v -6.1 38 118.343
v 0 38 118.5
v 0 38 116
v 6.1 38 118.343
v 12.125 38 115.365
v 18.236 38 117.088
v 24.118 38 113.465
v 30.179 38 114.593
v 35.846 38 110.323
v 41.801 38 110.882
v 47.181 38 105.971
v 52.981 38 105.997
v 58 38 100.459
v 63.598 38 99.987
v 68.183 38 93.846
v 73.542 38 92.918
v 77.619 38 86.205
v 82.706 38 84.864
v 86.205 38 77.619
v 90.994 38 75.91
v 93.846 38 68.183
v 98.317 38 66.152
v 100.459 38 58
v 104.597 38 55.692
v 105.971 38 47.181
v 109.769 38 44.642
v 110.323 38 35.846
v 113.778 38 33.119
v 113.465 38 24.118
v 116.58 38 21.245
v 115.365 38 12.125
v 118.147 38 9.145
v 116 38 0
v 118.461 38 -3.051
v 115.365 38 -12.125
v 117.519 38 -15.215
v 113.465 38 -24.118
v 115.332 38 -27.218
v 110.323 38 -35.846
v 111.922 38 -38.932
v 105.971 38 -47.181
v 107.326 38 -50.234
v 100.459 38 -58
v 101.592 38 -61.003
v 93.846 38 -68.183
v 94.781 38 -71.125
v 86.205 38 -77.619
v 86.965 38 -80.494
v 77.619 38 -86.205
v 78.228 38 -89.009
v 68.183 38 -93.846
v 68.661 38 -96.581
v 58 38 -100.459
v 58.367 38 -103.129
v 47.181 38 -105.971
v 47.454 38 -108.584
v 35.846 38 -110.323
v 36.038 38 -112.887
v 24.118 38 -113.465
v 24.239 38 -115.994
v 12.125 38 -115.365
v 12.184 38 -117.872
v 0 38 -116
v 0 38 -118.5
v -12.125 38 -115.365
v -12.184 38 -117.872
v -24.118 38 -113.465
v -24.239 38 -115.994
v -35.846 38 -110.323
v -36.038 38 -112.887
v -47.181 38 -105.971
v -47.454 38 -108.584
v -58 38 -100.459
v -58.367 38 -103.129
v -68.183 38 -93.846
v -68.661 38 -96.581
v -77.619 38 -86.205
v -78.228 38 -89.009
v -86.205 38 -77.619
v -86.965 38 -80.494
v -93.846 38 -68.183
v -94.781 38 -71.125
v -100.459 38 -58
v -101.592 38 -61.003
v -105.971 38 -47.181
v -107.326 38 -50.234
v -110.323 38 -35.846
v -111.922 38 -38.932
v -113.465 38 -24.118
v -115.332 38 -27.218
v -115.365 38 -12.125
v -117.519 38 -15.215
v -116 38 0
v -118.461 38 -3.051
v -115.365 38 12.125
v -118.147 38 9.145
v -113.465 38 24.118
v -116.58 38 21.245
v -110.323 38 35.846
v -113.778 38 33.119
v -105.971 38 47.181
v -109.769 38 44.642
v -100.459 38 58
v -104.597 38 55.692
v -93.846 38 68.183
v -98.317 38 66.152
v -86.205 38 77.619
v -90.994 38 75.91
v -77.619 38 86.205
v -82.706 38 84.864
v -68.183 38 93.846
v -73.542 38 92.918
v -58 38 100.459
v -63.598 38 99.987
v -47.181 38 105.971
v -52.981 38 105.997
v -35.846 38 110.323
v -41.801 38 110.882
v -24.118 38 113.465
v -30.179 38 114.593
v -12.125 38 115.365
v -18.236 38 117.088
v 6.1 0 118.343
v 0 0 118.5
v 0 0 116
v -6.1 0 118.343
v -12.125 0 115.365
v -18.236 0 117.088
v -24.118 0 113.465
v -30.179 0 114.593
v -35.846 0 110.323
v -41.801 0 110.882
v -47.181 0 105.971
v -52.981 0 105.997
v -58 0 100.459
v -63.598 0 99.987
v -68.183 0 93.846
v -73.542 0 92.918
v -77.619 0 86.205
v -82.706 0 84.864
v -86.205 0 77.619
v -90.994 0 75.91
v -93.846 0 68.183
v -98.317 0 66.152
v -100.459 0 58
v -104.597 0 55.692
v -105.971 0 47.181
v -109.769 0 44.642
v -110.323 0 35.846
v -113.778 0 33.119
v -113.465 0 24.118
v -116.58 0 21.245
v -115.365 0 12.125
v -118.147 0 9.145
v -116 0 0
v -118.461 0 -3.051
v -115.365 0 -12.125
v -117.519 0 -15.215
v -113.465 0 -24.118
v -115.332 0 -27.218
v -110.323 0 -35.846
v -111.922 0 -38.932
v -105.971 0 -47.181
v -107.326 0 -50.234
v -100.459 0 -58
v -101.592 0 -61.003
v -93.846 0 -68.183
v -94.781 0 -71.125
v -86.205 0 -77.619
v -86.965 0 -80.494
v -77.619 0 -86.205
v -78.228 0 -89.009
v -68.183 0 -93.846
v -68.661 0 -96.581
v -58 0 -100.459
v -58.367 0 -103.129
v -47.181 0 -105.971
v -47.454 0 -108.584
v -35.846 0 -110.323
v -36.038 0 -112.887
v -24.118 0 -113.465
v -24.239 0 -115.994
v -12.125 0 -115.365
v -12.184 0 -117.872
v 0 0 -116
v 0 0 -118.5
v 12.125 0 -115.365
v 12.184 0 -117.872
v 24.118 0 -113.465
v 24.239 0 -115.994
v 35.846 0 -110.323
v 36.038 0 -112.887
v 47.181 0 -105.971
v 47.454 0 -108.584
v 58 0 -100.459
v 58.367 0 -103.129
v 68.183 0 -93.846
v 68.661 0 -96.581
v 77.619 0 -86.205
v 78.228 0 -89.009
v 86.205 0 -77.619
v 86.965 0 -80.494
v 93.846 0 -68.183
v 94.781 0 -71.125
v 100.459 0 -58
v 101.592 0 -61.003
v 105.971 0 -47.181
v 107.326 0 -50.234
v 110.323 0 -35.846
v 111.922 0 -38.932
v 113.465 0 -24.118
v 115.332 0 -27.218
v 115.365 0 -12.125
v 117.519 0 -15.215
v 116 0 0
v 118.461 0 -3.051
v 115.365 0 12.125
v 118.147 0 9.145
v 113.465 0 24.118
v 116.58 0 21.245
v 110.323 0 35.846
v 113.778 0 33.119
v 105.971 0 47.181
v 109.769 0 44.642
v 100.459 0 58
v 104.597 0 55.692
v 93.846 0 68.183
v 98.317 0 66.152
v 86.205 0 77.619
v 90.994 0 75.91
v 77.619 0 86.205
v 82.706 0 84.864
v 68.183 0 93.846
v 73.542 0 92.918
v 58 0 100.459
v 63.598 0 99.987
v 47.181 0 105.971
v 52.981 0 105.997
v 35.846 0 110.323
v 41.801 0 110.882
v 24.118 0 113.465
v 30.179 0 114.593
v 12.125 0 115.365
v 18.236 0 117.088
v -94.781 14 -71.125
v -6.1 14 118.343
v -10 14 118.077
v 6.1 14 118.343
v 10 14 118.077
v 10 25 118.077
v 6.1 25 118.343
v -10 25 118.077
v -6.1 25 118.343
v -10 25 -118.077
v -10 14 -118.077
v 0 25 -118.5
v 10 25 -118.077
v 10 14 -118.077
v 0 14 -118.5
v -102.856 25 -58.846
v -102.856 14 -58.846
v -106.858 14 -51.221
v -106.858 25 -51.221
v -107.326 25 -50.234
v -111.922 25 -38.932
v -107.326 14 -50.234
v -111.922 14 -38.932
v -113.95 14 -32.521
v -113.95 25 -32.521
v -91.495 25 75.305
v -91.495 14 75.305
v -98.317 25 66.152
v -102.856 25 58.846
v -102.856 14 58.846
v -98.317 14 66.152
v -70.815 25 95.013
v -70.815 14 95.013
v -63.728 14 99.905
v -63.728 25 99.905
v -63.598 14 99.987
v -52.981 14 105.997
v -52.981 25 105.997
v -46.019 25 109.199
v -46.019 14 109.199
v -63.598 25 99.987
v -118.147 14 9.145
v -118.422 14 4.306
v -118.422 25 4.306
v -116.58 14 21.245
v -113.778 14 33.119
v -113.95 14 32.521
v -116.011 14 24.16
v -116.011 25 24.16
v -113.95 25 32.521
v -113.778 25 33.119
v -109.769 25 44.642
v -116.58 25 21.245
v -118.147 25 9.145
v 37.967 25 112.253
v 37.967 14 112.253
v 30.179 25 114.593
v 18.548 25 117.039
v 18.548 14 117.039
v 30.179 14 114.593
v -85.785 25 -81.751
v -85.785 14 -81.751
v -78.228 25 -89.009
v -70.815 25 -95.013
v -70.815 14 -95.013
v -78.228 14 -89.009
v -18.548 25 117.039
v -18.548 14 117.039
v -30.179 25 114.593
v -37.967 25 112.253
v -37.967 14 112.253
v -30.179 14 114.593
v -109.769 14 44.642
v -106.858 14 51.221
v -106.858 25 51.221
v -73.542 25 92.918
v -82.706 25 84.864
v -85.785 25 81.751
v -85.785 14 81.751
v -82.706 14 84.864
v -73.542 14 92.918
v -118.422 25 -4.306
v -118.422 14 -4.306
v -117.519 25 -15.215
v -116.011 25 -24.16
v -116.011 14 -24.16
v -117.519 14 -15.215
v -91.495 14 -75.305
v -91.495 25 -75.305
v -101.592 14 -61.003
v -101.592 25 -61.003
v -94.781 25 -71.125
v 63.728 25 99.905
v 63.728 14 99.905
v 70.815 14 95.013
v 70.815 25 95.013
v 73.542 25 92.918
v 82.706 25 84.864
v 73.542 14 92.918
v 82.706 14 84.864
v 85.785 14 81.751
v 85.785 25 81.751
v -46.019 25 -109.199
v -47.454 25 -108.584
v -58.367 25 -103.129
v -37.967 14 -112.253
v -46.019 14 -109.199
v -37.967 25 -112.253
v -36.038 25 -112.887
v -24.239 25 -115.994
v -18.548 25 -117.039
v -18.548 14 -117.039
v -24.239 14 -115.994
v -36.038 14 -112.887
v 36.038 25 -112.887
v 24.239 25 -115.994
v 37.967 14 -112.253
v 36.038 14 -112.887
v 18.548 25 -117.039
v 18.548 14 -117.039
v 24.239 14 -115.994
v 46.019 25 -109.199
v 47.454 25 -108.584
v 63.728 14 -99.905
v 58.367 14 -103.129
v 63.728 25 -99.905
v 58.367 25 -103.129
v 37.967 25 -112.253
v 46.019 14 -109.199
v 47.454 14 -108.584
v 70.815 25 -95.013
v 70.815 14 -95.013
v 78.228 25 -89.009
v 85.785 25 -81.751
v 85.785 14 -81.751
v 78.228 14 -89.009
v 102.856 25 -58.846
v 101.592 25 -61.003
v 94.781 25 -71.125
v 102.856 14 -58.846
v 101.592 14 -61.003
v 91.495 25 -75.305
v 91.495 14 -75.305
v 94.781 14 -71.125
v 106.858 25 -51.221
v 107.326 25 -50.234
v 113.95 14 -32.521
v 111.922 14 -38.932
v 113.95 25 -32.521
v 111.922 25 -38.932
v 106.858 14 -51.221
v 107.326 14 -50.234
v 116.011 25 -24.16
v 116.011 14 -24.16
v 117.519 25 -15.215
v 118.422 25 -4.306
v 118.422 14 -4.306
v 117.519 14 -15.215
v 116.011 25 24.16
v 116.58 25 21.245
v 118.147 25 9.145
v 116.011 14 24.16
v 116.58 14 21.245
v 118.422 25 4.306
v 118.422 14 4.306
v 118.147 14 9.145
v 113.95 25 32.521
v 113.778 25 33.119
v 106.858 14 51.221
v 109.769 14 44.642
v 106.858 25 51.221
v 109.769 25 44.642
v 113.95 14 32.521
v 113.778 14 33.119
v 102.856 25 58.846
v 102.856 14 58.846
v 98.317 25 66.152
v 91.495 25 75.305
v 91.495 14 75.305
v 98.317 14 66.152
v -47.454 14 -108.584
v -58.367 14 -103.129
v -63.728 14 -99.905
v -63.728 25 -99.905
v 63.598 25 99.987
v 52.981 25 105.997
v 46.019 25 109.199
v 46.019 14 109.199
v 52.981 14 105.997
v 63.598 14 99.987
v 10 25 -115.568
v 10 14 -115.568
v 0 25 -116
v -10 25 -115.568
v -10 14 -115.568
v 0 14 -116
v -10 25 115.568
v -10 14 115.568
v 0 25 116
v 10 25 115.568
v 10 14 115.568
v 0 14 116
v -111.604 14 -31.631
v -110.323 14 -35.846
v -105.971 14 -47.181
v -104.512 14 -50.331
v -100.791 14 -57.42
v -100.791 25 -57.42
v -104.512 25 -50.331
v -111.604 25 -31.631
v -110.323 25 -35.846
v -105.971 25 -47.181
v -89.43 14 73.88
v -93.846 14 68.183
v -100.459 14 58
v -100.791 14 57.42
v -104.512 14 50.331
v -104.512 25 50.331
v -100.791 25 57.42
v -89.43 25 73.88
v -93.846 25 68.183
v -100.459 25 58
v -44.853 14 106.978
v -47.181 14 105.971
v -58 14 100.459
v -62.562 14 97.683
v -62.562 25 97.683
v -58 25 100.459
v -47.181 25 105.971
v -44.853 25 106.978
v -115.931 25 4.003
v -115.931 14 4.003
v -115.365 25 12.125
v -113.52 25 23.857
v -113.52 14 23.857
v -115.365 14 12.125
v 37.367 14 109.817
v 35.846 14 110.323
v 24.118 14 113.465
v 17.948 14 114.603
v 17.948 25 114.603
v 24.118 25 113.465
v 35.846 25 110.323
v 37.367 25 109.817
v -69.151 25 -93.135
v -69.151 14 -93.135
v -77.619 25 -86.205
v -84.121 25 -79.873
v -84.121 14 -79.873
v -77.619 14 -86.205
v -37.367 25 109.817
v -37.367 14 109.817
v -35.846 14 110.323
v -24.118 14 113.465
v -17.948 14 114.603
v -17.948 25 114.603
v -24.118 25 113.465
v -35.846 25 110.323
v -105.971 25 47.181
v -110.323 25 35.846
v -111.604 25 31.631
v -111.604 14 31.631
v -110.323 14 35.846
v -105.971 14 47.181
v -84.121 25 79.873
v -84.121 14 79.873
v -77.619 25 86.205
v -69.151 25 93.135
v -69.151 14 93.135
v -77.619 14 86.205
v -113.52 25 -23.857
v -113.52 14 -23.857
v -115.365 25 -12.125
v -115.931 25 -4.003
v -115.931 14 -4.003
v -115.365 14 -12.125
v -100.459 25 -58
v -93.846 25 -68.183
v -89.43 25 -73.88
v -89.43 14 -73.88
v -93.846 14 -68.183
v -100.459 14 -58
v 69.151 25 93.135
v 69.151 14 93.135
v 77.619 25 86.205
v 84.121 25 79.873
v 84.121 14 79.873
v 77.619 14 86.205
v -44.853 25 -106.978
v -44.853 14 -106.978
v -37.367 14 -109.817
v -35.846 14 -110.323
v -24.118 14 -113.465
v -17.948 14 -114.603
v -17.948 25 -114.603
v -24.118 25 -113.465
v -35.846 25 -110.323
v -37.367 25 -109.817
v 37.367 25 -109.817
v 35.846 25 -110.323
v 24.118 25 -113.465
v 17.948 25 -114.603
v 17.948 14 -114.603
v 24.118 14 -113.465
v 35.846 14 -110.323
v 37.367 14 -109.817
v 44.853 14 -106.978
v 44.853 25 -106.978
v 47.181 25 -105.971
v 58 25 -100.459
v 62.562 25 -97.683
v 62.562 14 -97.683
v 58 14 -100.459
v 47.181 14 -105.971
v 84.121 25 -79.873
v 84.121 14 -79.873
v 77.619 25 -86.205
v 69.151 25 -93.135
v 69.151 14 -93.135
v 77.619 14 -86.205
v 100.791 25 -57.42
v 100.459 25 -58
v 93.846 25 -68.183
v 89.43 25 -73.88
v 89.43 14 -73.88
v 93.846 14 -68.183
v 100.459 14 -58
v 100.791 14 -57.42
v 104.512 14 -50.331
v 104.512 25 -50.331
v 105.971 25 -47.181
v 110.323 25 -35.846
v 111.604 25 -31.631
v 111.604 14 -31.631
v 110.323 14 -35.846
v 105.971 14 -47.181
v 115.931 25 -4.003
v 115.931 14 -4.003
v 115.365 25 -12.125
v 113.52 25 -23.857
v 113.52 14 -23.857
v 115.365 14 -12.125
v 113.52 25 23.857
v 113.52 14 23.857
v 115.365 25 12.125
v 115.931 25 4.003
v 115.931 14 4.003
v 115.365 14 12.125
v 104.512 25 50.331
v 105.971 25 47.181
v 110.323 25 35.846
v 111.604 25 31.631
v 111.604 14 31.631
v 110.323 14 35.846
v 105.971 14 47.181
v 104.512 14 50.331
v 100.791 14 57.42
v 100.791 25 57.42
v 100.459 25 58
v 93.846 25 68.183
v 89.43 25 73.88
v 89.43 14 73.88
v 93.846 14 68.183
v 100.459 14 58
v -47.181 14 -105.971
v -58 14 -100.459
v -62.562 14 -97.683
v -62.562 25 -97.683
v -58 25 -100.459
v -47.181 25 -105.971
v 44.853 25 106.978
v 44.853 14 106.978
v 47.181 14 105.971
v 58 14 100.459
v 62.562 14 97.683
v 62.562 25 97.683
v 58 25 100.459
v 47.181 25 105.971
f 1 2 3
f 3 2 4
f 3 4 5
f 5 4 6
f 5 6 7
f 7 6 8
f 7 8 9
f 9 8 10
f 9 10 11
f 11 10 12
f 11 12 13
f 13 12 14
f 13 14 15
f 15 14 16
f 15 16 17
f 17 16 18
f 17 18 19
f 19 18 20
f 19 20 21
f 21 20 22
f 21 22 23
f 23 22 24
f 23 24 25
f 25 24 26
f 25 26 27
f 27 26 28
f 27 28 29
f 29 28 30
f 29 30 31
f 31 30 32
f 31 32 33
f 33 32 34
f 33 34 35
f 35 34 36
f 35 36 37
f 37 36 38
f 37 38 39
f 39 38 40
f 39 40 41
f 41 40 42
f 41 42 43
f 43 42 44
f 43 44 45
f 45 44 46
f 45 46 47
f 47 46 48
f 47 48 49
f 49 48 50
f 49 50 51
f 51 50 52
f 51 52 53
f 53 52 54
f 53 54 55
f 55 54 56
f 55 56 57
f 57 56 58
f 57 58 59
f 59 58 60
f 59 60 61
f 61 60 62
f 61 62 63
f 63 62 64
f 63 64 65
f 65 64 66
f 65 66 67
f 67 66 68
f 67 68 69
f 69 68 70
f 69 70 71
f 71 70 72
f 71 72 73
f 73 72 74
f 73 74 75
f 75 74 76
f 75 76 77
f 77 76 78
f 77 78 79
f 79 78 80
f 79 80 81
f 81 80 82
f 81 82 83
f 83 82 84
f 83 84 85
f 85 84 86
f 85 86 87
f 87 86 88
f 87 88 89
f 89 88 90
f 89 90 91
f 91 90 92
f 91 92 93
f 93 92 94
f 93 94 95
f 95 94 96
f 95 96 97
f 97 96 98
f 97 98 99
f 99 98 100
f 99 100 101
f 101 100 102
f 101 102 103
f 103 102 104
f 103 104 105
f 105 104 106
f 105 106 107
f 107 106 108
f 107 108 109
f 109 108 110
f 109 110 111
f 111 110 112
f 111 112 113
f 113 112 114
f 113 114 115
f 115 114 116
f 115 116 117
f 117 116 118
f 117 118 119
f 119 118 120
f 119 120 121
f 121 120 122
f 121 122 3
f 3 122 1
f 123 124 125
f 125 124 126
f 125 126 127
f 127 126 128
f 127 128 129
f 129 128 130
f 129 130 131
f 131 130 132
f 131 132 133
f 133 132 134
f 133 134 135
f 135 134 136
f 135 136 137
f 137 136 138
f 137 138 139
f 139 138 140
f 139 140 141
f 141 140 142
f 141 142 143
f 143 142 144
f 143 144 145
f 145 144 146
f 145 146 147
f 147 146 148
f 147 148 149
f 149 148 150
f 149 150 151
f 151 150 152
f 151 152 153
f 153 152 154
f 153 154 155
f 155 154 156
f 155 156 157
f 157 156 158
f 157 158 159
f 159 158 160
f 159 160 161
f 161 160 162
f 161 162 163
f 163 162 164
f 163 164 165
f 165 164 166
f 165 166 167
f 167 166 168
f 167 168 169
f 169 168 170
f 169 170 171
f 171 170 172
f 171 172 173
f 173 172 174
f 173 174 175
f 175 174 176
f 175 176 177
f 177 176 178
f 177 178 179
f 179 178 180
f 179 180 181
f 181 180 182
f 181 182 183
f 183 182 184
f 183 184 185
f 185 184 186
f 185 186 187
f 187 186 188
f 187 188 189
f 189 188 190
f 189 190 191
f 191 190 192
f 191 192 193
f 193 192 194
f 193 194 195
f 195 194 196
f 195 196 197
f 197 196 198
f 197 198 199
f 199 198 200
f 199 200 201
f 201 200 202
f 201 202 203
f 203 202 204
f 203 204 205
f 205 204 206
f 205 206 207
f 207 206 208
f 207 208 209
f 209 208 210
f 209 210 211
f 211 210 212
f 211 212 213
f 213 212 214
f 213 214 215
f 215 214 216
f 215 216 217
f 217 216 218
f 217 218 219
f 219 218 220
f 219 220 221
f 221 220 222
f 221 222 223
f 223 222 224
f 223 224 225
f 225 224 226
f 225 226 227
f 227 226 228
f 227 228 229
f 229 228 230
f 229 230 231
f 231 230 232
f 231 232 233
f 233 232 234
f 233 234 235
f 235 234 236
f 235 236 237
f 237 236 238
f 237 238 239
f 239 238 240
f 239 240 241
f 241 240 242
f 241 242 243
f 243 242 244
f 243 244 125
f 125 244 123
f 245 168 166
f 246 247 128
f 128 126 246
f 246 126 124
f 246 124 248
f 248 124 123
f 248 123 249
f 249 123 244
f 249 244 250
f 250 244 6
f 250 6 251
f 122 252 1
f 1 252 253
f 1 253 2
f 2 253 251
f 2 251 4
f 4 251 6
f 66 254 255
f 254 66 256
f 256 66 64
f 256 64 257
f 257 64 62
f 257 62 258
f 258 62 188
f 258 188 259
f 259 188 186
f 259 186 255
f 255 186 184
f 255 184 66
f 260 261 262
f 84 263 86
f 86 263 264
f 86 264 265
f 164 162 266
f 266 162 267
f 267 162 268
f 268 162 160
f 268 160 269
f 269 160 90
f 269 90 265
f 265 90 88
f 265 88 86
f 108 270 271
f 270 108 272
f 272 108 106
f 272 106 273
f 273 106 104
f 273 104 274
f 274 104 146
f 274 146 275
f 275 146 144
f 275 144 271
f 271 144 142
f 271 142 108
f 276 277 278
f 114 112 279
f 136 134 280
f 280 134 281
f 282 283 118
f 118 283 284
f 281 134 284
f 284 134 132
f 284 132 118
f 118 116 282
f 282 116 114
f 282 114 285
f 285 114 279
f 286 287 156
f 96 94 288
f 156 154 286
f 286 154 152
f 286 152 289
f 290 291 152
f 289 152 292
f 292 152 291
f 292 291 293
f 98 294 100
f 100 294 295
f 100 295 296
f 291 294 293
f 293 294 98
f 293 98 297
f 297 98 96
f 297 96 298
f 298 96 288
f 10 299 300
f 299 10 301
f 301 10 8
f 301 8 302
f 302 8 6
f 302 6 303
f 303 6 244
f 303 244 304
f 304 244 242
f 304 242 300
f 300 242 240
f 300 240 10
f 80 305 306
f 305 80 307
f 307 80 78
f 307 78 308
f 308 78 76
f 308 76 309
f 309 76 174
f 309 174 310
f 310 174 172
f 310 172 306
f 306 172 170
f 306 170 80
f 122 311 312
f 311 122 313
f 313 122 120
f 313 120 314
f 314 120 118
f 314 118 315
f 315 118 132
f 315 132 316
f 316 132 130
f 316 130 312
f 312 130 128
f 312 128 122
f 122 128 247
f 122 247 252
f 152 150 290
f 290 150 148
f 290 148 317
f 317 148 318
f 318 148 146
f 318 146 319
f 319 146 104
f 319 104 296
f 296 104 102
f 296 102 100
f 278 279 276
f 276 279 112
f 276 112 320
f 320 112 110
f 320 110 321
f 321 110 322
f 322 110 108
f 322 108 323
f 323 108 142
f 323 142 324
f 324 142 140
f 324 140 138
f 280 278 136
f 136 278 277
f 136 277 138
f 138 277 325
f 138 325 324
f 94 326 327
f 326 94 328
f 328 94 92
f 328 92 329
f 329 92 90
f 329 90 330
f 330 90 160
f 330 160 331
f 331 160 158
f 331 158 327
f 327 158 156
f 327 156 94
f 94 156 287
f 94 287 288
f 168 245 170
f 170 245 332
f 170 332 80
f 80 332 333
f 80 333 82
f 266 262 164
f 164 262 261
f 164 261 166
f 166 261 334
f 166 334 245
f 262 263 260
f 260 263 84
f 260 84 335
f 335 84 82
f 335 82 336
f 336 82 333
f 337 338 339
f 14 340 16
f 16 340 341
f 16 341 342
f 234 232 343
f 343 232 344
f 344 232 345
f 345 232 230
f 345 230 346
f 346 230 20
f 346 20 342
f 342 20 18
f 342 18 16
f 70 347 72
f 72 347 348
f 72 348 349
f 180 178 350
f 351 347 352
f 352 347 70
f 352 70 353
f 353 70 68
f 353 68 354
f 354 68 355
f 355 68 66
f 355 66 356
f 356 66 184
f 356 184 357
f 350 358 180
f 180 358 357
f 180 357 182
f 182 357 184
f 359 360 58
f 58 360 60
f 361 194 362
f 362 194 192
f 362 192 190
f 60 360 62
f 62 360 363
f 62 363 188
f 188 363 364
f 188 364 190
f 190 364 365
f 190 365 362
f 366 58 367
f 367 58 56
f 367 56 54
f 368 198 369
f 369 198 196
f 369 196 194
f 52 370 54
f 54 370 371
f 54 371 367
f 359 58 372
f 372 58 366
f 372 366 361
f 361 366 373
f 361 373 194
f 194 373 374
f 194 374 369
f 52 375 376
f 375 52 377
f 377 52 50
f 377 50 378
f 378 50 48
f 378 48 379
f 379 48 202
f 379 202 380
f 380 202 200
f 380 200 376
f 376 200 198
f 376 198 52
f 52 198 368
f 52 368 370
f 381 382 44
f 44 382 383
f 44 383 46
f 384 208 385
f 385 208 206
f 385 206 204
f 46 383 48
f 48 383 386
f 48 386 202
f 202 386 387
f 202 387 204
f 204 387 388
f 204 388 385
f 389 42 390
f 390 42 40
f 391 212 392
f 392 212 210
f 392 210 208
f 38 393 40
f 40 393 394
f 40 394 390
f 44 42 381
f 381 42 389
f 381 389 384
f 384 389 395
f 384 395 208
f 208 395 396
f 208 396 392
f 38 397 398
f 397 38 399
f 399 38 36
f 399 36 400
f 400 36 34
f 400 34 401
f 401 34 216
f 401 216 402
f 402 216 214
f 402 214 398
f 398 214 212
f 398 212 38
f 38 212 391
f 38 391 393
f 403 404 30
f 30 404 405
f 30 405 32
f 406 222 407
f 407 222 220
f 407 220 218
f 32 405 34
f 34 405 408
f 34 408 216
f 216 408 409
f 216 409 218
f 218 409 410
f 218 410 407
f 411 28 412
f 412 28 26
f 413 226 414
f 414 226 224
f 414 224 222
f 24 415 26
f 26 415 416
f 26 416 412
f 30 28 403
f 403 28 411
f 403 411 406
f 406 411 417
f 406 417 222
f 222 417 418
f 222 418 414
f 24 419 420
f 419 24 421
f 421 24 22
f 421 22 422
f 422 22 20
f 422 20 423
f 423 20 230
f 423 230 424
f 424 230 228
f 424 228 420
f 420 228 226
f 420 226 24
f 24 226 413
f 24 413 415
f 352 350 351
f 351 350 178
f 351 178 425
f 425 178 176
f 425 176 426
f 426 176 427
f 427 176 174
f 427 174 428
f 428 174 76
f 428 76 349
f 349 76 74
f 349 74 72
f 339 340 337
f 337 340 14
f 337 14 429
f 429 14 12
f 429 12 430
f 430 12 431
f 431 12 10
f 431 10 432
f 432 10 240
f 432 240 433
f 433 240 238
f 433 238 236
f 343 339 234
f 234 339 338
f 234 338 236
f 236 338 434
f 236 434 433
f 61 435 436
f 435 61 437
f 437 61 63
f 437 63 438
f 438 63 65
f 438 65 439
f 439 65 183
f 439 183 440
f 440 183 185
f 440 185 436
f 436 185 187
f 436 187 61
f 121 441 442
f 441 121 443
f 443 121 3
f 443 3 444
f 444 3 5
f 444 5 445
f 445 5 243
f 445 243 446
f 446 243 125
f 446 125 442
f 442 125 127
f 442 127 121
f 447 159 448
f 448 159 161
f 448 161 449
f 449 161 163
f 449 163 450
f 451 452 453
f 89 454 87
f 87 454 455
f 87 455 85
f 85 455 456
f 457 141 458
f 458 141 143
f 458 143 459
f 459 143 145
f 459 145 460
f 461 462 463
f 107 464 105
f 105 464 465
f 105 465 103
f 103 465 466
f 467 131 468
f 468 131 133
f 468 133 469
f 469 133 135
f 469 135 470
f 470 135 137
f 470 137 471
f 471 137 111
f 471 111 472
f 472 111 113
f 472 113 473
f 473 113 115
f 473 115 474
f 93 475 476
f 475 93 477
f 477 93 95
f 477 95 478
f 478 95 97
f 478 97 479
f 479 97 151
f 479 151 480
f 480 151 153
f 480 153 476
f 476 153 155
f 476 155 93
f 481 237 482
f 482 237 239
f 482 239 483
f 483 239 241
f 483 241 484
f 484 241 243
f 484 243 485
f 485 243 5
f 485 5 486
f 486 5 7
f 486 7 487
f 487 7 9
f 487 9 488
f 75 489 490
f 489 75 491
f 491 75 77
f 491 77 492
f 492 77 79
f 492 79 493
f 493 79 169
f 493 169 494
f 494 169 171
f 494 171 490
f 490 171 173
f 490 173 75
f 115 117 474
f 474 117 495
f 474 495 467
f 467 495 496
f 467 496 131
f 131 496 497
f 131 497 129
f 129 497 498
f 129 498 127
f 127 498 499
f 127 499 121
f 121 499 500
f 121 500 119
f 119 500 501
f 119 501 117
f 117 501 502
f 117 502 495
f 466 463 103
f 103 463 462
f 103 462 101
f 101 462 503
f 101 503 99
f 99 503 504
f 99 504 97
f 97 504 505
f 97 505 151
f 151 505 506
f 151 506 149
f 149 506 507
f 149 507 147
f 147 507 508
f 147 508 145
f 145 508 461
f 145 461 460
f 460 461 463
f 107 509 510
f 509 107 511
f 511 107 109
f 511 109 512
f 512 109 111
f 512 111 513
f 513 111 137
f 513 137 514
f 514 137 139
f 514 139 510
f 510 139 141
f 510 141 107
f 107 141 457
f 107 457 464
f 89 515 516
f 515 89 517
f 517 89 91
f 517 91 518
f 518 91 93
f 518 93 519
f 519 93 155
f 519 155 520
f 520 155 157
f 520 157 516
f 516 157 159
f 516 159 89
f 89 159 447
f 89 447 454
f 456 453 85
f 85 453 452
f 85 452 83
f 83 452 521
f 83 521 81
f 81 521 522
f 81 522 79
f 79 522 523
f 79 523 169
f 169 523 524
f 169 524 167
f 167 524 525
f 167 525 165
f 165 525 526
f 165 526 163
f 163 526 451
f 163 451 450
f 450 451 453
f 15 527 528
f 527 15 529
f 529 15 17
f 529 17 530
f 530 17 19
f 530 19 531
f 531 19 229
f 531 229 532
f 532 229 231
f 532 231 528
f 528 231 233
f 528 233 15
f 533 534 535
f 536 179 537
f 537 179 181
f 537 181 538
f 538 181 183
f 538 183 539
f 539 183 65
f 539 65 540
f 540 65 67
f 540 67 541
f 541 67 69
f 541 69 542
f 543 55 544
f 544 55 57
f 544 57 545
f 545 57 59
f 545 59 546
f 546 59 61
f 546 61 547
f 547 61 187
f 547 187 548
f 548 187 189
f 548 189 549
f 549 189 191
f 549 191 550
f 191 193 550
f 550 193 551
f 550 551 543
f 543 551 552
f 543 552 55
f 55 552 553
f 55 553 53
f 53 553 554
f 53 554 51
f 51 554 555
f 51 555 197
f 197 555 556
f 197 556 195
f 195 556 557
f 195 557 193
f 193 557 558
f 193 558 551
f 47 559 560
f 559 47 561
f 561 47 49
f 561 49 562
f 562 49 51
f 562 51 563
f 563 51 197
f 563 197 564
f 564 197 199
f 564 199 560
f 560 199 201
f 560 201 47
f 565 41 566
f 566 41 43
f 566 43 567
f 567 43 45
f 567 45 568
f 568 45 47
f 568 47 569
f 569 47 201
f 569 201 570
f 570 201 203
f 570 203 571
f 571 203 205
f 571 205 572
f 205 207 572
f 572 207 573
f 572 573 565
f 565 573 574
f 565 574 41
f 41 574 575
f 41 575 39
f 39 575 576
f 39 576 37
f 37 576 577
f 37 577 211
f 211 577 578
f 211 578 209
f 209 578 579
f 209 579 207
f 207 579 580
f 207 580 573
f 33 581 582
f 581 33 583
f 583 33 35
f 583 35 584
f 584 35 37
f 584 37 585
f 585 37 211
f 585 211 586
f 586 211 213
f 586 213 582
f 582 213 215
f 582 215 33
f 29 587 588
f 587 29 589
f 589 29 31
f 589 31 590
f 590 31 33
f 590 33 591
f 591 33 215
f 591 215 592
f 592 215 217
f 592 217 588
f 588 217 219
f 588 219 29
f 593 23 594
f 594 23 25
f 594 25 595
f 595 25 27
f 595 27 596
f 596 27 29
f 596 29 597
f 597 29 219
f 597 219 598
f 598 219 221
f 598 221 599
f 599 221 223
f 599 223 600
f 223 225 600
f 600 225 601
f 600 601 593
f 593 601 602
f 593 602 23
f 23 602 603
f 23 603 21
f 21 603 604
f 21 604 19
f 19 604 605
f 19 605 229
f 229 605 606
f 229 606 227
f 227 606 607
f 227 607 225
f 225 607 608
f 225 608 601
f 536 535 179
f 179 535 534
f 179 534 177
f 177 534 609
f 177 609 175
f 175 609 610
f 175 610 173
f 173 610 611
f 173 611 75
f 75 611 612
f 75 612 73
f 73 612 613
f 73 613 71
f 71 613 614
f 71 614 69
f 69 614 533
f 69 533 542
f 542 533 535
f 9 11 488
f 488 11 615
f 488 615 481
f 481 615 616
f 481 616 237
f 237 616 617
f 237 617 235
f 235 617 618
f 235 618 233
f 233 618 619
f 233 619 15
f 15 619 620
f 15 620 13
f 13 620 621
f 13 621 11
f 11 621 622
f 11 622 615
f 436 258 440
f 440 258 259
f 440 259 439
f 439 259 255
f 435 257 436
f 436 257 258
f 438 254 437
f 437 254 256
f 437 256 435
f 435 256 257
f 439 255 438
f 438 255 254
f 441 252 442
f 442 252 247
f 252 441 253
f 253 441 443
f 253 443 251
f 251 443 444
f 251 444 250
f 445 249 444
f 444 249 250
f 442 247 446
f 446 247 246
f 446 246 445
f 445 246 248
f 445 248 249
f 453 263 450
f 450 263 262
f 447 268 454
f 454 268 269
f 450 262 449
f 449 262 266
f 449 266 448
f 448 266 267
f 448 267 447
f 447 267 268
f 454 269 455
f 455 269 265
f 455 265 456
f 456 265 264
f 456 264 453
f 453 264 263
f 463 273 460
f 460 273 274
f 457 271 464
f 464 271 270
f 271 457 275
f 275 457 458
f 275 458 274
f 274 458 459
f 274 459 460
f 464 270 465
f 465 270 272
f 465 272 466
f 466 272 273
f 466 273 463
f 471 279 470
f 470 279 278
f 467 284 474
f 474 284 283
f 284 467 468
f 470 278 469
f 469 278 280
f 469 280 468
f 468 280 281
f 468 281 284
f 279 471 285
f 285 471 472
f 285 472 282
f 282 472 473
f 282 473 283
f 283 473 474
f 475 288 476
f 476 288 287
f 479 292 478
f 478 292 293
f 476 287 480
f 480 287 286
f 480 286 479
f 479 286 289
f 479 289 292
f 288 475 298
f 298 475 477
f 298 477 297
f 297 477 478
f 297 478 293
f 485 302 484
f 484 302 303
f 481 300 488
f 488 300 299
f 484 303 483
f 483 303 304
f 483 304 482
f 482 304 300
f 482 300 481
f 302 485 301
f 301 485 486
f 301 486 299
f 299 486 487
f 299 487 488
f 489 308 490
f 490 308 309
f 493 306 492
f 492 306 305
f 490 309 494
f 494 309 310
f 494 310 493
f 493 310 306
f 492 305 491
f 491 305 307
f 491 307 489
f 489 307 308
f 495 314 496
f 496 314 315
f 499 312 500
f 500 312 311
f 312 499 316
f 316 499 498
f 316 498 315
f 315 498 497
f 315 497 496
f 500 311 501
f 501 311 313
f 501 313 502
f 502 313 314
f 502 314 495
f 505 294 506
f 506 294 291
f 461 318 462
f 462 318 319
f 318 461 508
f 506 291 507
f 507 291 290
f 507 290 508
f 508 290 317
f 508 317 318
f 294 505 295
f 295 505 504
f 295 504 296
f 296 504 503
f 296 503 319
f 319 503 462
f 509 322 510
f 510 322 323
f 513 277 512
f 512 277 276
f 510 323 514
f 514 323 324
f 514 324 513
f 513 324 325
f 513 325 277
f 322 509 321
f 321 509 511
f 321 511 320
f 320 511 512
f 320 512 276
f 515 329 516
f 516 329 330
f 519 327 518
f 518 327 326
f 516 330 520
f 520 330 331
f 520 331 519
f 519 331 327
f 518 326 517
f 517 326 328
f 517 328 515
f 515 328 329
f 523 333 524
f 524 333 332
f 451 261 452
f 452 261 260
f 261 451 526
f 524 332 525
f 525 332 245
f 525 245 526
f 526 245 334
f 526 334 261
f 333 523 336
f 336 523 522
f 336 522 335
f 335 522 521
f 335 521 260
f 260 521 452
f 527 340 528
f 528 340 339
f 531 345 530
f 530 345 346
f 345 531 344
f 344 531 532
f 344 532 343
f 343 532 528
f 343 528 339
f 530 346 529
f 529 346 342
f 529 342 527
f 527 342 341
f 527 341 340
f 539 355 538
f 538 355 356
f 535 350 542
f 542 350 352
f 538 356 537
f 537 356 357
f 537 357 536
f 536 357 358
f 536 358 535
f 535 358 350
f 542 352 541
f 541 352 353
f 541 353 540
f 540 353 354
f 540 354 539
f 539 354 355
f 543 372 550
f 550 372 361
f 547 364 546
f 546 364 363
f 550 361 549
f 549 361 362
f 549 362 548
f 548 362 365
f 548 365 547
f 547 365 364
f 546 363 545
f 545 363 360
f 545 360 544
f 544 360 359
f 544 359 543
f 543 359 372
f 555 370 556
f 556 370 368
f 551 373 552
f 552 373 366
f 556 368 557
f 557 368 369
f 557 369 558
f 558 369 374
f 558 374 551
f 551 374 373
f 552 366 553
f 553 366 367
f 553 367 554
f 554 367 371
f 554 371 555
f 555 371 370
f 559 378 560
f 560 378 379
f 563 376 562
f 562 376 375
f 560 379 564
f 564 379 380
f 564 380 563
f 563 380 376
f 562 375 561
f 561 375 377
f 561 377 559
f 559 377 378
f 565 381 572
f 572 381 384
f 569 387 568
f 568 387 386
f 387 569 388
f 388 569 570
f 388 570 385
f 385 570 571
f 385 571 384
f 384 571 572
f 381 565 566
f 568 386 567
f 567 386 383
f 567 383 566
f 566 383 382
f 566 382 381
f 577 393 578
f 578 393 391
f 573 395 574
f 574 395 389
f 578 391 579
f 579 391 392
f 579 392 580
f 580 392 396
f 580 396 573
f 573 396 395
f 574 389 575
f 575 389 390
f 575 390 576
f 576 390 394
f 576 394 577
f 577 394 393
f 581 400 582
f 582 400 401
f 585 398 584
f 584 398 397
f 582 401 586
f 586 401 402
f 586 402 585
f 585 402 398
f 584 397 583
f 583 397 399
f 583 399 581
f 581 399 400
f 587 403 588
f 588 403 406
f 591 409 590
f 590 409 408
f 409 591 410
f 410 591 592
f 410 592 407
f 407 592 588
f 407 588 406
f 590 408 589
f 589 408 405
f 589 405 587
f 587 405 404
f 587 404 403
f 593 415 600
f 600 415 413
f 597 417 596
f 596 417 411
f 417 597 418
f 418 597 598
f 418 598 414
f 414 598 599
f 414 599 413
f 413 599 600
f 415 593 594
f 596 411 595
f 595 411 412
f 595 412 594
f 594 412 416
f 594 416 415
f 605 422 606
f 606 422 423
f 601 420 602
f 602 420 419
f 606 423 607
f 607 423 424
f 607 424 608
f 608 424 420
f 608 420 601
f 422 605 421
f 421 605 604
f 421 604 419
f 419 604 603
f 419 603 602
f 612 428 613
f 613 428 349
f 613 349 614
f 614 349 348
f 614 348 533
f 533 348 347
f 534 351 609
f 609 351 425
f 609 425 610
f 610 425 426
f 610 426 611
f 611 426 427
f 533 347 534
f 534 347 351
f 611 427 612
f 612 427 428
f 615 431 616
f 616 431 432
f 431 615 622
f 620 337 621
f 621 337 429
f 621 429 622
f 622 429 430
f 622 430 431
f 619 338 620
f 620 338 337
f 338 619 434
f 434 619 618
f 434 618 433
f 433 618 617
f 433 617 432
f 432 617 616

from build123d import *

# Parameters (mm, degrees)
SKETCH1_R           = 118.5
SKETCH1_R_2         = 116
BOSS_EXTRUDE1_DEPTH = 38
SKETCH2_W           = 20
SKETCH2_H           = 11
CUT_EXTRUDE1_DEPTH  = 119.5
CIRPATTERN1_COUNT   = 13


with BuildPart() as part:
    # Sketch1 → Boss-Extrude1 (new body)
    with BuildSketch(Plane(origin=(0, 0, 0), x_dir=(1, 0, 0), z_dir=(0, 1, 0))):
        Circle(SKETCH1_R)
        Circle(SKETCH1_R_2, mode=Mode.SUBTRACT)
    extrude(amount=BOSS_EXTRUDE1_DEPTH)

    # Sketch2 → Cut-Extrude1 (cut, symmetric)
    with BuildSketch(Plane.XY):
        with Locations((0, 19.5)):
            Rectangle(SKETCH2_W, SKETCH2_H)
    cut_extrude1 = extrude(amount=CUT_EXTRUDE1_DEPTH, both=True, mode=Mode.SUBTRACT)

    # CirPattern1: Cut-Extrude1 ×13 about axis
    cirpattern1_axis = Axis((0, 0, 0), (0, 1, 0))
    for i in range(1, CIRPATTERN1_COUNT):
        add(cut_extrude1.rotate(cirpattern1_axis, i * 360 / CIRPATTERN1_COUNT), mode=Mode.SUBTRACT)


solid = part.part
